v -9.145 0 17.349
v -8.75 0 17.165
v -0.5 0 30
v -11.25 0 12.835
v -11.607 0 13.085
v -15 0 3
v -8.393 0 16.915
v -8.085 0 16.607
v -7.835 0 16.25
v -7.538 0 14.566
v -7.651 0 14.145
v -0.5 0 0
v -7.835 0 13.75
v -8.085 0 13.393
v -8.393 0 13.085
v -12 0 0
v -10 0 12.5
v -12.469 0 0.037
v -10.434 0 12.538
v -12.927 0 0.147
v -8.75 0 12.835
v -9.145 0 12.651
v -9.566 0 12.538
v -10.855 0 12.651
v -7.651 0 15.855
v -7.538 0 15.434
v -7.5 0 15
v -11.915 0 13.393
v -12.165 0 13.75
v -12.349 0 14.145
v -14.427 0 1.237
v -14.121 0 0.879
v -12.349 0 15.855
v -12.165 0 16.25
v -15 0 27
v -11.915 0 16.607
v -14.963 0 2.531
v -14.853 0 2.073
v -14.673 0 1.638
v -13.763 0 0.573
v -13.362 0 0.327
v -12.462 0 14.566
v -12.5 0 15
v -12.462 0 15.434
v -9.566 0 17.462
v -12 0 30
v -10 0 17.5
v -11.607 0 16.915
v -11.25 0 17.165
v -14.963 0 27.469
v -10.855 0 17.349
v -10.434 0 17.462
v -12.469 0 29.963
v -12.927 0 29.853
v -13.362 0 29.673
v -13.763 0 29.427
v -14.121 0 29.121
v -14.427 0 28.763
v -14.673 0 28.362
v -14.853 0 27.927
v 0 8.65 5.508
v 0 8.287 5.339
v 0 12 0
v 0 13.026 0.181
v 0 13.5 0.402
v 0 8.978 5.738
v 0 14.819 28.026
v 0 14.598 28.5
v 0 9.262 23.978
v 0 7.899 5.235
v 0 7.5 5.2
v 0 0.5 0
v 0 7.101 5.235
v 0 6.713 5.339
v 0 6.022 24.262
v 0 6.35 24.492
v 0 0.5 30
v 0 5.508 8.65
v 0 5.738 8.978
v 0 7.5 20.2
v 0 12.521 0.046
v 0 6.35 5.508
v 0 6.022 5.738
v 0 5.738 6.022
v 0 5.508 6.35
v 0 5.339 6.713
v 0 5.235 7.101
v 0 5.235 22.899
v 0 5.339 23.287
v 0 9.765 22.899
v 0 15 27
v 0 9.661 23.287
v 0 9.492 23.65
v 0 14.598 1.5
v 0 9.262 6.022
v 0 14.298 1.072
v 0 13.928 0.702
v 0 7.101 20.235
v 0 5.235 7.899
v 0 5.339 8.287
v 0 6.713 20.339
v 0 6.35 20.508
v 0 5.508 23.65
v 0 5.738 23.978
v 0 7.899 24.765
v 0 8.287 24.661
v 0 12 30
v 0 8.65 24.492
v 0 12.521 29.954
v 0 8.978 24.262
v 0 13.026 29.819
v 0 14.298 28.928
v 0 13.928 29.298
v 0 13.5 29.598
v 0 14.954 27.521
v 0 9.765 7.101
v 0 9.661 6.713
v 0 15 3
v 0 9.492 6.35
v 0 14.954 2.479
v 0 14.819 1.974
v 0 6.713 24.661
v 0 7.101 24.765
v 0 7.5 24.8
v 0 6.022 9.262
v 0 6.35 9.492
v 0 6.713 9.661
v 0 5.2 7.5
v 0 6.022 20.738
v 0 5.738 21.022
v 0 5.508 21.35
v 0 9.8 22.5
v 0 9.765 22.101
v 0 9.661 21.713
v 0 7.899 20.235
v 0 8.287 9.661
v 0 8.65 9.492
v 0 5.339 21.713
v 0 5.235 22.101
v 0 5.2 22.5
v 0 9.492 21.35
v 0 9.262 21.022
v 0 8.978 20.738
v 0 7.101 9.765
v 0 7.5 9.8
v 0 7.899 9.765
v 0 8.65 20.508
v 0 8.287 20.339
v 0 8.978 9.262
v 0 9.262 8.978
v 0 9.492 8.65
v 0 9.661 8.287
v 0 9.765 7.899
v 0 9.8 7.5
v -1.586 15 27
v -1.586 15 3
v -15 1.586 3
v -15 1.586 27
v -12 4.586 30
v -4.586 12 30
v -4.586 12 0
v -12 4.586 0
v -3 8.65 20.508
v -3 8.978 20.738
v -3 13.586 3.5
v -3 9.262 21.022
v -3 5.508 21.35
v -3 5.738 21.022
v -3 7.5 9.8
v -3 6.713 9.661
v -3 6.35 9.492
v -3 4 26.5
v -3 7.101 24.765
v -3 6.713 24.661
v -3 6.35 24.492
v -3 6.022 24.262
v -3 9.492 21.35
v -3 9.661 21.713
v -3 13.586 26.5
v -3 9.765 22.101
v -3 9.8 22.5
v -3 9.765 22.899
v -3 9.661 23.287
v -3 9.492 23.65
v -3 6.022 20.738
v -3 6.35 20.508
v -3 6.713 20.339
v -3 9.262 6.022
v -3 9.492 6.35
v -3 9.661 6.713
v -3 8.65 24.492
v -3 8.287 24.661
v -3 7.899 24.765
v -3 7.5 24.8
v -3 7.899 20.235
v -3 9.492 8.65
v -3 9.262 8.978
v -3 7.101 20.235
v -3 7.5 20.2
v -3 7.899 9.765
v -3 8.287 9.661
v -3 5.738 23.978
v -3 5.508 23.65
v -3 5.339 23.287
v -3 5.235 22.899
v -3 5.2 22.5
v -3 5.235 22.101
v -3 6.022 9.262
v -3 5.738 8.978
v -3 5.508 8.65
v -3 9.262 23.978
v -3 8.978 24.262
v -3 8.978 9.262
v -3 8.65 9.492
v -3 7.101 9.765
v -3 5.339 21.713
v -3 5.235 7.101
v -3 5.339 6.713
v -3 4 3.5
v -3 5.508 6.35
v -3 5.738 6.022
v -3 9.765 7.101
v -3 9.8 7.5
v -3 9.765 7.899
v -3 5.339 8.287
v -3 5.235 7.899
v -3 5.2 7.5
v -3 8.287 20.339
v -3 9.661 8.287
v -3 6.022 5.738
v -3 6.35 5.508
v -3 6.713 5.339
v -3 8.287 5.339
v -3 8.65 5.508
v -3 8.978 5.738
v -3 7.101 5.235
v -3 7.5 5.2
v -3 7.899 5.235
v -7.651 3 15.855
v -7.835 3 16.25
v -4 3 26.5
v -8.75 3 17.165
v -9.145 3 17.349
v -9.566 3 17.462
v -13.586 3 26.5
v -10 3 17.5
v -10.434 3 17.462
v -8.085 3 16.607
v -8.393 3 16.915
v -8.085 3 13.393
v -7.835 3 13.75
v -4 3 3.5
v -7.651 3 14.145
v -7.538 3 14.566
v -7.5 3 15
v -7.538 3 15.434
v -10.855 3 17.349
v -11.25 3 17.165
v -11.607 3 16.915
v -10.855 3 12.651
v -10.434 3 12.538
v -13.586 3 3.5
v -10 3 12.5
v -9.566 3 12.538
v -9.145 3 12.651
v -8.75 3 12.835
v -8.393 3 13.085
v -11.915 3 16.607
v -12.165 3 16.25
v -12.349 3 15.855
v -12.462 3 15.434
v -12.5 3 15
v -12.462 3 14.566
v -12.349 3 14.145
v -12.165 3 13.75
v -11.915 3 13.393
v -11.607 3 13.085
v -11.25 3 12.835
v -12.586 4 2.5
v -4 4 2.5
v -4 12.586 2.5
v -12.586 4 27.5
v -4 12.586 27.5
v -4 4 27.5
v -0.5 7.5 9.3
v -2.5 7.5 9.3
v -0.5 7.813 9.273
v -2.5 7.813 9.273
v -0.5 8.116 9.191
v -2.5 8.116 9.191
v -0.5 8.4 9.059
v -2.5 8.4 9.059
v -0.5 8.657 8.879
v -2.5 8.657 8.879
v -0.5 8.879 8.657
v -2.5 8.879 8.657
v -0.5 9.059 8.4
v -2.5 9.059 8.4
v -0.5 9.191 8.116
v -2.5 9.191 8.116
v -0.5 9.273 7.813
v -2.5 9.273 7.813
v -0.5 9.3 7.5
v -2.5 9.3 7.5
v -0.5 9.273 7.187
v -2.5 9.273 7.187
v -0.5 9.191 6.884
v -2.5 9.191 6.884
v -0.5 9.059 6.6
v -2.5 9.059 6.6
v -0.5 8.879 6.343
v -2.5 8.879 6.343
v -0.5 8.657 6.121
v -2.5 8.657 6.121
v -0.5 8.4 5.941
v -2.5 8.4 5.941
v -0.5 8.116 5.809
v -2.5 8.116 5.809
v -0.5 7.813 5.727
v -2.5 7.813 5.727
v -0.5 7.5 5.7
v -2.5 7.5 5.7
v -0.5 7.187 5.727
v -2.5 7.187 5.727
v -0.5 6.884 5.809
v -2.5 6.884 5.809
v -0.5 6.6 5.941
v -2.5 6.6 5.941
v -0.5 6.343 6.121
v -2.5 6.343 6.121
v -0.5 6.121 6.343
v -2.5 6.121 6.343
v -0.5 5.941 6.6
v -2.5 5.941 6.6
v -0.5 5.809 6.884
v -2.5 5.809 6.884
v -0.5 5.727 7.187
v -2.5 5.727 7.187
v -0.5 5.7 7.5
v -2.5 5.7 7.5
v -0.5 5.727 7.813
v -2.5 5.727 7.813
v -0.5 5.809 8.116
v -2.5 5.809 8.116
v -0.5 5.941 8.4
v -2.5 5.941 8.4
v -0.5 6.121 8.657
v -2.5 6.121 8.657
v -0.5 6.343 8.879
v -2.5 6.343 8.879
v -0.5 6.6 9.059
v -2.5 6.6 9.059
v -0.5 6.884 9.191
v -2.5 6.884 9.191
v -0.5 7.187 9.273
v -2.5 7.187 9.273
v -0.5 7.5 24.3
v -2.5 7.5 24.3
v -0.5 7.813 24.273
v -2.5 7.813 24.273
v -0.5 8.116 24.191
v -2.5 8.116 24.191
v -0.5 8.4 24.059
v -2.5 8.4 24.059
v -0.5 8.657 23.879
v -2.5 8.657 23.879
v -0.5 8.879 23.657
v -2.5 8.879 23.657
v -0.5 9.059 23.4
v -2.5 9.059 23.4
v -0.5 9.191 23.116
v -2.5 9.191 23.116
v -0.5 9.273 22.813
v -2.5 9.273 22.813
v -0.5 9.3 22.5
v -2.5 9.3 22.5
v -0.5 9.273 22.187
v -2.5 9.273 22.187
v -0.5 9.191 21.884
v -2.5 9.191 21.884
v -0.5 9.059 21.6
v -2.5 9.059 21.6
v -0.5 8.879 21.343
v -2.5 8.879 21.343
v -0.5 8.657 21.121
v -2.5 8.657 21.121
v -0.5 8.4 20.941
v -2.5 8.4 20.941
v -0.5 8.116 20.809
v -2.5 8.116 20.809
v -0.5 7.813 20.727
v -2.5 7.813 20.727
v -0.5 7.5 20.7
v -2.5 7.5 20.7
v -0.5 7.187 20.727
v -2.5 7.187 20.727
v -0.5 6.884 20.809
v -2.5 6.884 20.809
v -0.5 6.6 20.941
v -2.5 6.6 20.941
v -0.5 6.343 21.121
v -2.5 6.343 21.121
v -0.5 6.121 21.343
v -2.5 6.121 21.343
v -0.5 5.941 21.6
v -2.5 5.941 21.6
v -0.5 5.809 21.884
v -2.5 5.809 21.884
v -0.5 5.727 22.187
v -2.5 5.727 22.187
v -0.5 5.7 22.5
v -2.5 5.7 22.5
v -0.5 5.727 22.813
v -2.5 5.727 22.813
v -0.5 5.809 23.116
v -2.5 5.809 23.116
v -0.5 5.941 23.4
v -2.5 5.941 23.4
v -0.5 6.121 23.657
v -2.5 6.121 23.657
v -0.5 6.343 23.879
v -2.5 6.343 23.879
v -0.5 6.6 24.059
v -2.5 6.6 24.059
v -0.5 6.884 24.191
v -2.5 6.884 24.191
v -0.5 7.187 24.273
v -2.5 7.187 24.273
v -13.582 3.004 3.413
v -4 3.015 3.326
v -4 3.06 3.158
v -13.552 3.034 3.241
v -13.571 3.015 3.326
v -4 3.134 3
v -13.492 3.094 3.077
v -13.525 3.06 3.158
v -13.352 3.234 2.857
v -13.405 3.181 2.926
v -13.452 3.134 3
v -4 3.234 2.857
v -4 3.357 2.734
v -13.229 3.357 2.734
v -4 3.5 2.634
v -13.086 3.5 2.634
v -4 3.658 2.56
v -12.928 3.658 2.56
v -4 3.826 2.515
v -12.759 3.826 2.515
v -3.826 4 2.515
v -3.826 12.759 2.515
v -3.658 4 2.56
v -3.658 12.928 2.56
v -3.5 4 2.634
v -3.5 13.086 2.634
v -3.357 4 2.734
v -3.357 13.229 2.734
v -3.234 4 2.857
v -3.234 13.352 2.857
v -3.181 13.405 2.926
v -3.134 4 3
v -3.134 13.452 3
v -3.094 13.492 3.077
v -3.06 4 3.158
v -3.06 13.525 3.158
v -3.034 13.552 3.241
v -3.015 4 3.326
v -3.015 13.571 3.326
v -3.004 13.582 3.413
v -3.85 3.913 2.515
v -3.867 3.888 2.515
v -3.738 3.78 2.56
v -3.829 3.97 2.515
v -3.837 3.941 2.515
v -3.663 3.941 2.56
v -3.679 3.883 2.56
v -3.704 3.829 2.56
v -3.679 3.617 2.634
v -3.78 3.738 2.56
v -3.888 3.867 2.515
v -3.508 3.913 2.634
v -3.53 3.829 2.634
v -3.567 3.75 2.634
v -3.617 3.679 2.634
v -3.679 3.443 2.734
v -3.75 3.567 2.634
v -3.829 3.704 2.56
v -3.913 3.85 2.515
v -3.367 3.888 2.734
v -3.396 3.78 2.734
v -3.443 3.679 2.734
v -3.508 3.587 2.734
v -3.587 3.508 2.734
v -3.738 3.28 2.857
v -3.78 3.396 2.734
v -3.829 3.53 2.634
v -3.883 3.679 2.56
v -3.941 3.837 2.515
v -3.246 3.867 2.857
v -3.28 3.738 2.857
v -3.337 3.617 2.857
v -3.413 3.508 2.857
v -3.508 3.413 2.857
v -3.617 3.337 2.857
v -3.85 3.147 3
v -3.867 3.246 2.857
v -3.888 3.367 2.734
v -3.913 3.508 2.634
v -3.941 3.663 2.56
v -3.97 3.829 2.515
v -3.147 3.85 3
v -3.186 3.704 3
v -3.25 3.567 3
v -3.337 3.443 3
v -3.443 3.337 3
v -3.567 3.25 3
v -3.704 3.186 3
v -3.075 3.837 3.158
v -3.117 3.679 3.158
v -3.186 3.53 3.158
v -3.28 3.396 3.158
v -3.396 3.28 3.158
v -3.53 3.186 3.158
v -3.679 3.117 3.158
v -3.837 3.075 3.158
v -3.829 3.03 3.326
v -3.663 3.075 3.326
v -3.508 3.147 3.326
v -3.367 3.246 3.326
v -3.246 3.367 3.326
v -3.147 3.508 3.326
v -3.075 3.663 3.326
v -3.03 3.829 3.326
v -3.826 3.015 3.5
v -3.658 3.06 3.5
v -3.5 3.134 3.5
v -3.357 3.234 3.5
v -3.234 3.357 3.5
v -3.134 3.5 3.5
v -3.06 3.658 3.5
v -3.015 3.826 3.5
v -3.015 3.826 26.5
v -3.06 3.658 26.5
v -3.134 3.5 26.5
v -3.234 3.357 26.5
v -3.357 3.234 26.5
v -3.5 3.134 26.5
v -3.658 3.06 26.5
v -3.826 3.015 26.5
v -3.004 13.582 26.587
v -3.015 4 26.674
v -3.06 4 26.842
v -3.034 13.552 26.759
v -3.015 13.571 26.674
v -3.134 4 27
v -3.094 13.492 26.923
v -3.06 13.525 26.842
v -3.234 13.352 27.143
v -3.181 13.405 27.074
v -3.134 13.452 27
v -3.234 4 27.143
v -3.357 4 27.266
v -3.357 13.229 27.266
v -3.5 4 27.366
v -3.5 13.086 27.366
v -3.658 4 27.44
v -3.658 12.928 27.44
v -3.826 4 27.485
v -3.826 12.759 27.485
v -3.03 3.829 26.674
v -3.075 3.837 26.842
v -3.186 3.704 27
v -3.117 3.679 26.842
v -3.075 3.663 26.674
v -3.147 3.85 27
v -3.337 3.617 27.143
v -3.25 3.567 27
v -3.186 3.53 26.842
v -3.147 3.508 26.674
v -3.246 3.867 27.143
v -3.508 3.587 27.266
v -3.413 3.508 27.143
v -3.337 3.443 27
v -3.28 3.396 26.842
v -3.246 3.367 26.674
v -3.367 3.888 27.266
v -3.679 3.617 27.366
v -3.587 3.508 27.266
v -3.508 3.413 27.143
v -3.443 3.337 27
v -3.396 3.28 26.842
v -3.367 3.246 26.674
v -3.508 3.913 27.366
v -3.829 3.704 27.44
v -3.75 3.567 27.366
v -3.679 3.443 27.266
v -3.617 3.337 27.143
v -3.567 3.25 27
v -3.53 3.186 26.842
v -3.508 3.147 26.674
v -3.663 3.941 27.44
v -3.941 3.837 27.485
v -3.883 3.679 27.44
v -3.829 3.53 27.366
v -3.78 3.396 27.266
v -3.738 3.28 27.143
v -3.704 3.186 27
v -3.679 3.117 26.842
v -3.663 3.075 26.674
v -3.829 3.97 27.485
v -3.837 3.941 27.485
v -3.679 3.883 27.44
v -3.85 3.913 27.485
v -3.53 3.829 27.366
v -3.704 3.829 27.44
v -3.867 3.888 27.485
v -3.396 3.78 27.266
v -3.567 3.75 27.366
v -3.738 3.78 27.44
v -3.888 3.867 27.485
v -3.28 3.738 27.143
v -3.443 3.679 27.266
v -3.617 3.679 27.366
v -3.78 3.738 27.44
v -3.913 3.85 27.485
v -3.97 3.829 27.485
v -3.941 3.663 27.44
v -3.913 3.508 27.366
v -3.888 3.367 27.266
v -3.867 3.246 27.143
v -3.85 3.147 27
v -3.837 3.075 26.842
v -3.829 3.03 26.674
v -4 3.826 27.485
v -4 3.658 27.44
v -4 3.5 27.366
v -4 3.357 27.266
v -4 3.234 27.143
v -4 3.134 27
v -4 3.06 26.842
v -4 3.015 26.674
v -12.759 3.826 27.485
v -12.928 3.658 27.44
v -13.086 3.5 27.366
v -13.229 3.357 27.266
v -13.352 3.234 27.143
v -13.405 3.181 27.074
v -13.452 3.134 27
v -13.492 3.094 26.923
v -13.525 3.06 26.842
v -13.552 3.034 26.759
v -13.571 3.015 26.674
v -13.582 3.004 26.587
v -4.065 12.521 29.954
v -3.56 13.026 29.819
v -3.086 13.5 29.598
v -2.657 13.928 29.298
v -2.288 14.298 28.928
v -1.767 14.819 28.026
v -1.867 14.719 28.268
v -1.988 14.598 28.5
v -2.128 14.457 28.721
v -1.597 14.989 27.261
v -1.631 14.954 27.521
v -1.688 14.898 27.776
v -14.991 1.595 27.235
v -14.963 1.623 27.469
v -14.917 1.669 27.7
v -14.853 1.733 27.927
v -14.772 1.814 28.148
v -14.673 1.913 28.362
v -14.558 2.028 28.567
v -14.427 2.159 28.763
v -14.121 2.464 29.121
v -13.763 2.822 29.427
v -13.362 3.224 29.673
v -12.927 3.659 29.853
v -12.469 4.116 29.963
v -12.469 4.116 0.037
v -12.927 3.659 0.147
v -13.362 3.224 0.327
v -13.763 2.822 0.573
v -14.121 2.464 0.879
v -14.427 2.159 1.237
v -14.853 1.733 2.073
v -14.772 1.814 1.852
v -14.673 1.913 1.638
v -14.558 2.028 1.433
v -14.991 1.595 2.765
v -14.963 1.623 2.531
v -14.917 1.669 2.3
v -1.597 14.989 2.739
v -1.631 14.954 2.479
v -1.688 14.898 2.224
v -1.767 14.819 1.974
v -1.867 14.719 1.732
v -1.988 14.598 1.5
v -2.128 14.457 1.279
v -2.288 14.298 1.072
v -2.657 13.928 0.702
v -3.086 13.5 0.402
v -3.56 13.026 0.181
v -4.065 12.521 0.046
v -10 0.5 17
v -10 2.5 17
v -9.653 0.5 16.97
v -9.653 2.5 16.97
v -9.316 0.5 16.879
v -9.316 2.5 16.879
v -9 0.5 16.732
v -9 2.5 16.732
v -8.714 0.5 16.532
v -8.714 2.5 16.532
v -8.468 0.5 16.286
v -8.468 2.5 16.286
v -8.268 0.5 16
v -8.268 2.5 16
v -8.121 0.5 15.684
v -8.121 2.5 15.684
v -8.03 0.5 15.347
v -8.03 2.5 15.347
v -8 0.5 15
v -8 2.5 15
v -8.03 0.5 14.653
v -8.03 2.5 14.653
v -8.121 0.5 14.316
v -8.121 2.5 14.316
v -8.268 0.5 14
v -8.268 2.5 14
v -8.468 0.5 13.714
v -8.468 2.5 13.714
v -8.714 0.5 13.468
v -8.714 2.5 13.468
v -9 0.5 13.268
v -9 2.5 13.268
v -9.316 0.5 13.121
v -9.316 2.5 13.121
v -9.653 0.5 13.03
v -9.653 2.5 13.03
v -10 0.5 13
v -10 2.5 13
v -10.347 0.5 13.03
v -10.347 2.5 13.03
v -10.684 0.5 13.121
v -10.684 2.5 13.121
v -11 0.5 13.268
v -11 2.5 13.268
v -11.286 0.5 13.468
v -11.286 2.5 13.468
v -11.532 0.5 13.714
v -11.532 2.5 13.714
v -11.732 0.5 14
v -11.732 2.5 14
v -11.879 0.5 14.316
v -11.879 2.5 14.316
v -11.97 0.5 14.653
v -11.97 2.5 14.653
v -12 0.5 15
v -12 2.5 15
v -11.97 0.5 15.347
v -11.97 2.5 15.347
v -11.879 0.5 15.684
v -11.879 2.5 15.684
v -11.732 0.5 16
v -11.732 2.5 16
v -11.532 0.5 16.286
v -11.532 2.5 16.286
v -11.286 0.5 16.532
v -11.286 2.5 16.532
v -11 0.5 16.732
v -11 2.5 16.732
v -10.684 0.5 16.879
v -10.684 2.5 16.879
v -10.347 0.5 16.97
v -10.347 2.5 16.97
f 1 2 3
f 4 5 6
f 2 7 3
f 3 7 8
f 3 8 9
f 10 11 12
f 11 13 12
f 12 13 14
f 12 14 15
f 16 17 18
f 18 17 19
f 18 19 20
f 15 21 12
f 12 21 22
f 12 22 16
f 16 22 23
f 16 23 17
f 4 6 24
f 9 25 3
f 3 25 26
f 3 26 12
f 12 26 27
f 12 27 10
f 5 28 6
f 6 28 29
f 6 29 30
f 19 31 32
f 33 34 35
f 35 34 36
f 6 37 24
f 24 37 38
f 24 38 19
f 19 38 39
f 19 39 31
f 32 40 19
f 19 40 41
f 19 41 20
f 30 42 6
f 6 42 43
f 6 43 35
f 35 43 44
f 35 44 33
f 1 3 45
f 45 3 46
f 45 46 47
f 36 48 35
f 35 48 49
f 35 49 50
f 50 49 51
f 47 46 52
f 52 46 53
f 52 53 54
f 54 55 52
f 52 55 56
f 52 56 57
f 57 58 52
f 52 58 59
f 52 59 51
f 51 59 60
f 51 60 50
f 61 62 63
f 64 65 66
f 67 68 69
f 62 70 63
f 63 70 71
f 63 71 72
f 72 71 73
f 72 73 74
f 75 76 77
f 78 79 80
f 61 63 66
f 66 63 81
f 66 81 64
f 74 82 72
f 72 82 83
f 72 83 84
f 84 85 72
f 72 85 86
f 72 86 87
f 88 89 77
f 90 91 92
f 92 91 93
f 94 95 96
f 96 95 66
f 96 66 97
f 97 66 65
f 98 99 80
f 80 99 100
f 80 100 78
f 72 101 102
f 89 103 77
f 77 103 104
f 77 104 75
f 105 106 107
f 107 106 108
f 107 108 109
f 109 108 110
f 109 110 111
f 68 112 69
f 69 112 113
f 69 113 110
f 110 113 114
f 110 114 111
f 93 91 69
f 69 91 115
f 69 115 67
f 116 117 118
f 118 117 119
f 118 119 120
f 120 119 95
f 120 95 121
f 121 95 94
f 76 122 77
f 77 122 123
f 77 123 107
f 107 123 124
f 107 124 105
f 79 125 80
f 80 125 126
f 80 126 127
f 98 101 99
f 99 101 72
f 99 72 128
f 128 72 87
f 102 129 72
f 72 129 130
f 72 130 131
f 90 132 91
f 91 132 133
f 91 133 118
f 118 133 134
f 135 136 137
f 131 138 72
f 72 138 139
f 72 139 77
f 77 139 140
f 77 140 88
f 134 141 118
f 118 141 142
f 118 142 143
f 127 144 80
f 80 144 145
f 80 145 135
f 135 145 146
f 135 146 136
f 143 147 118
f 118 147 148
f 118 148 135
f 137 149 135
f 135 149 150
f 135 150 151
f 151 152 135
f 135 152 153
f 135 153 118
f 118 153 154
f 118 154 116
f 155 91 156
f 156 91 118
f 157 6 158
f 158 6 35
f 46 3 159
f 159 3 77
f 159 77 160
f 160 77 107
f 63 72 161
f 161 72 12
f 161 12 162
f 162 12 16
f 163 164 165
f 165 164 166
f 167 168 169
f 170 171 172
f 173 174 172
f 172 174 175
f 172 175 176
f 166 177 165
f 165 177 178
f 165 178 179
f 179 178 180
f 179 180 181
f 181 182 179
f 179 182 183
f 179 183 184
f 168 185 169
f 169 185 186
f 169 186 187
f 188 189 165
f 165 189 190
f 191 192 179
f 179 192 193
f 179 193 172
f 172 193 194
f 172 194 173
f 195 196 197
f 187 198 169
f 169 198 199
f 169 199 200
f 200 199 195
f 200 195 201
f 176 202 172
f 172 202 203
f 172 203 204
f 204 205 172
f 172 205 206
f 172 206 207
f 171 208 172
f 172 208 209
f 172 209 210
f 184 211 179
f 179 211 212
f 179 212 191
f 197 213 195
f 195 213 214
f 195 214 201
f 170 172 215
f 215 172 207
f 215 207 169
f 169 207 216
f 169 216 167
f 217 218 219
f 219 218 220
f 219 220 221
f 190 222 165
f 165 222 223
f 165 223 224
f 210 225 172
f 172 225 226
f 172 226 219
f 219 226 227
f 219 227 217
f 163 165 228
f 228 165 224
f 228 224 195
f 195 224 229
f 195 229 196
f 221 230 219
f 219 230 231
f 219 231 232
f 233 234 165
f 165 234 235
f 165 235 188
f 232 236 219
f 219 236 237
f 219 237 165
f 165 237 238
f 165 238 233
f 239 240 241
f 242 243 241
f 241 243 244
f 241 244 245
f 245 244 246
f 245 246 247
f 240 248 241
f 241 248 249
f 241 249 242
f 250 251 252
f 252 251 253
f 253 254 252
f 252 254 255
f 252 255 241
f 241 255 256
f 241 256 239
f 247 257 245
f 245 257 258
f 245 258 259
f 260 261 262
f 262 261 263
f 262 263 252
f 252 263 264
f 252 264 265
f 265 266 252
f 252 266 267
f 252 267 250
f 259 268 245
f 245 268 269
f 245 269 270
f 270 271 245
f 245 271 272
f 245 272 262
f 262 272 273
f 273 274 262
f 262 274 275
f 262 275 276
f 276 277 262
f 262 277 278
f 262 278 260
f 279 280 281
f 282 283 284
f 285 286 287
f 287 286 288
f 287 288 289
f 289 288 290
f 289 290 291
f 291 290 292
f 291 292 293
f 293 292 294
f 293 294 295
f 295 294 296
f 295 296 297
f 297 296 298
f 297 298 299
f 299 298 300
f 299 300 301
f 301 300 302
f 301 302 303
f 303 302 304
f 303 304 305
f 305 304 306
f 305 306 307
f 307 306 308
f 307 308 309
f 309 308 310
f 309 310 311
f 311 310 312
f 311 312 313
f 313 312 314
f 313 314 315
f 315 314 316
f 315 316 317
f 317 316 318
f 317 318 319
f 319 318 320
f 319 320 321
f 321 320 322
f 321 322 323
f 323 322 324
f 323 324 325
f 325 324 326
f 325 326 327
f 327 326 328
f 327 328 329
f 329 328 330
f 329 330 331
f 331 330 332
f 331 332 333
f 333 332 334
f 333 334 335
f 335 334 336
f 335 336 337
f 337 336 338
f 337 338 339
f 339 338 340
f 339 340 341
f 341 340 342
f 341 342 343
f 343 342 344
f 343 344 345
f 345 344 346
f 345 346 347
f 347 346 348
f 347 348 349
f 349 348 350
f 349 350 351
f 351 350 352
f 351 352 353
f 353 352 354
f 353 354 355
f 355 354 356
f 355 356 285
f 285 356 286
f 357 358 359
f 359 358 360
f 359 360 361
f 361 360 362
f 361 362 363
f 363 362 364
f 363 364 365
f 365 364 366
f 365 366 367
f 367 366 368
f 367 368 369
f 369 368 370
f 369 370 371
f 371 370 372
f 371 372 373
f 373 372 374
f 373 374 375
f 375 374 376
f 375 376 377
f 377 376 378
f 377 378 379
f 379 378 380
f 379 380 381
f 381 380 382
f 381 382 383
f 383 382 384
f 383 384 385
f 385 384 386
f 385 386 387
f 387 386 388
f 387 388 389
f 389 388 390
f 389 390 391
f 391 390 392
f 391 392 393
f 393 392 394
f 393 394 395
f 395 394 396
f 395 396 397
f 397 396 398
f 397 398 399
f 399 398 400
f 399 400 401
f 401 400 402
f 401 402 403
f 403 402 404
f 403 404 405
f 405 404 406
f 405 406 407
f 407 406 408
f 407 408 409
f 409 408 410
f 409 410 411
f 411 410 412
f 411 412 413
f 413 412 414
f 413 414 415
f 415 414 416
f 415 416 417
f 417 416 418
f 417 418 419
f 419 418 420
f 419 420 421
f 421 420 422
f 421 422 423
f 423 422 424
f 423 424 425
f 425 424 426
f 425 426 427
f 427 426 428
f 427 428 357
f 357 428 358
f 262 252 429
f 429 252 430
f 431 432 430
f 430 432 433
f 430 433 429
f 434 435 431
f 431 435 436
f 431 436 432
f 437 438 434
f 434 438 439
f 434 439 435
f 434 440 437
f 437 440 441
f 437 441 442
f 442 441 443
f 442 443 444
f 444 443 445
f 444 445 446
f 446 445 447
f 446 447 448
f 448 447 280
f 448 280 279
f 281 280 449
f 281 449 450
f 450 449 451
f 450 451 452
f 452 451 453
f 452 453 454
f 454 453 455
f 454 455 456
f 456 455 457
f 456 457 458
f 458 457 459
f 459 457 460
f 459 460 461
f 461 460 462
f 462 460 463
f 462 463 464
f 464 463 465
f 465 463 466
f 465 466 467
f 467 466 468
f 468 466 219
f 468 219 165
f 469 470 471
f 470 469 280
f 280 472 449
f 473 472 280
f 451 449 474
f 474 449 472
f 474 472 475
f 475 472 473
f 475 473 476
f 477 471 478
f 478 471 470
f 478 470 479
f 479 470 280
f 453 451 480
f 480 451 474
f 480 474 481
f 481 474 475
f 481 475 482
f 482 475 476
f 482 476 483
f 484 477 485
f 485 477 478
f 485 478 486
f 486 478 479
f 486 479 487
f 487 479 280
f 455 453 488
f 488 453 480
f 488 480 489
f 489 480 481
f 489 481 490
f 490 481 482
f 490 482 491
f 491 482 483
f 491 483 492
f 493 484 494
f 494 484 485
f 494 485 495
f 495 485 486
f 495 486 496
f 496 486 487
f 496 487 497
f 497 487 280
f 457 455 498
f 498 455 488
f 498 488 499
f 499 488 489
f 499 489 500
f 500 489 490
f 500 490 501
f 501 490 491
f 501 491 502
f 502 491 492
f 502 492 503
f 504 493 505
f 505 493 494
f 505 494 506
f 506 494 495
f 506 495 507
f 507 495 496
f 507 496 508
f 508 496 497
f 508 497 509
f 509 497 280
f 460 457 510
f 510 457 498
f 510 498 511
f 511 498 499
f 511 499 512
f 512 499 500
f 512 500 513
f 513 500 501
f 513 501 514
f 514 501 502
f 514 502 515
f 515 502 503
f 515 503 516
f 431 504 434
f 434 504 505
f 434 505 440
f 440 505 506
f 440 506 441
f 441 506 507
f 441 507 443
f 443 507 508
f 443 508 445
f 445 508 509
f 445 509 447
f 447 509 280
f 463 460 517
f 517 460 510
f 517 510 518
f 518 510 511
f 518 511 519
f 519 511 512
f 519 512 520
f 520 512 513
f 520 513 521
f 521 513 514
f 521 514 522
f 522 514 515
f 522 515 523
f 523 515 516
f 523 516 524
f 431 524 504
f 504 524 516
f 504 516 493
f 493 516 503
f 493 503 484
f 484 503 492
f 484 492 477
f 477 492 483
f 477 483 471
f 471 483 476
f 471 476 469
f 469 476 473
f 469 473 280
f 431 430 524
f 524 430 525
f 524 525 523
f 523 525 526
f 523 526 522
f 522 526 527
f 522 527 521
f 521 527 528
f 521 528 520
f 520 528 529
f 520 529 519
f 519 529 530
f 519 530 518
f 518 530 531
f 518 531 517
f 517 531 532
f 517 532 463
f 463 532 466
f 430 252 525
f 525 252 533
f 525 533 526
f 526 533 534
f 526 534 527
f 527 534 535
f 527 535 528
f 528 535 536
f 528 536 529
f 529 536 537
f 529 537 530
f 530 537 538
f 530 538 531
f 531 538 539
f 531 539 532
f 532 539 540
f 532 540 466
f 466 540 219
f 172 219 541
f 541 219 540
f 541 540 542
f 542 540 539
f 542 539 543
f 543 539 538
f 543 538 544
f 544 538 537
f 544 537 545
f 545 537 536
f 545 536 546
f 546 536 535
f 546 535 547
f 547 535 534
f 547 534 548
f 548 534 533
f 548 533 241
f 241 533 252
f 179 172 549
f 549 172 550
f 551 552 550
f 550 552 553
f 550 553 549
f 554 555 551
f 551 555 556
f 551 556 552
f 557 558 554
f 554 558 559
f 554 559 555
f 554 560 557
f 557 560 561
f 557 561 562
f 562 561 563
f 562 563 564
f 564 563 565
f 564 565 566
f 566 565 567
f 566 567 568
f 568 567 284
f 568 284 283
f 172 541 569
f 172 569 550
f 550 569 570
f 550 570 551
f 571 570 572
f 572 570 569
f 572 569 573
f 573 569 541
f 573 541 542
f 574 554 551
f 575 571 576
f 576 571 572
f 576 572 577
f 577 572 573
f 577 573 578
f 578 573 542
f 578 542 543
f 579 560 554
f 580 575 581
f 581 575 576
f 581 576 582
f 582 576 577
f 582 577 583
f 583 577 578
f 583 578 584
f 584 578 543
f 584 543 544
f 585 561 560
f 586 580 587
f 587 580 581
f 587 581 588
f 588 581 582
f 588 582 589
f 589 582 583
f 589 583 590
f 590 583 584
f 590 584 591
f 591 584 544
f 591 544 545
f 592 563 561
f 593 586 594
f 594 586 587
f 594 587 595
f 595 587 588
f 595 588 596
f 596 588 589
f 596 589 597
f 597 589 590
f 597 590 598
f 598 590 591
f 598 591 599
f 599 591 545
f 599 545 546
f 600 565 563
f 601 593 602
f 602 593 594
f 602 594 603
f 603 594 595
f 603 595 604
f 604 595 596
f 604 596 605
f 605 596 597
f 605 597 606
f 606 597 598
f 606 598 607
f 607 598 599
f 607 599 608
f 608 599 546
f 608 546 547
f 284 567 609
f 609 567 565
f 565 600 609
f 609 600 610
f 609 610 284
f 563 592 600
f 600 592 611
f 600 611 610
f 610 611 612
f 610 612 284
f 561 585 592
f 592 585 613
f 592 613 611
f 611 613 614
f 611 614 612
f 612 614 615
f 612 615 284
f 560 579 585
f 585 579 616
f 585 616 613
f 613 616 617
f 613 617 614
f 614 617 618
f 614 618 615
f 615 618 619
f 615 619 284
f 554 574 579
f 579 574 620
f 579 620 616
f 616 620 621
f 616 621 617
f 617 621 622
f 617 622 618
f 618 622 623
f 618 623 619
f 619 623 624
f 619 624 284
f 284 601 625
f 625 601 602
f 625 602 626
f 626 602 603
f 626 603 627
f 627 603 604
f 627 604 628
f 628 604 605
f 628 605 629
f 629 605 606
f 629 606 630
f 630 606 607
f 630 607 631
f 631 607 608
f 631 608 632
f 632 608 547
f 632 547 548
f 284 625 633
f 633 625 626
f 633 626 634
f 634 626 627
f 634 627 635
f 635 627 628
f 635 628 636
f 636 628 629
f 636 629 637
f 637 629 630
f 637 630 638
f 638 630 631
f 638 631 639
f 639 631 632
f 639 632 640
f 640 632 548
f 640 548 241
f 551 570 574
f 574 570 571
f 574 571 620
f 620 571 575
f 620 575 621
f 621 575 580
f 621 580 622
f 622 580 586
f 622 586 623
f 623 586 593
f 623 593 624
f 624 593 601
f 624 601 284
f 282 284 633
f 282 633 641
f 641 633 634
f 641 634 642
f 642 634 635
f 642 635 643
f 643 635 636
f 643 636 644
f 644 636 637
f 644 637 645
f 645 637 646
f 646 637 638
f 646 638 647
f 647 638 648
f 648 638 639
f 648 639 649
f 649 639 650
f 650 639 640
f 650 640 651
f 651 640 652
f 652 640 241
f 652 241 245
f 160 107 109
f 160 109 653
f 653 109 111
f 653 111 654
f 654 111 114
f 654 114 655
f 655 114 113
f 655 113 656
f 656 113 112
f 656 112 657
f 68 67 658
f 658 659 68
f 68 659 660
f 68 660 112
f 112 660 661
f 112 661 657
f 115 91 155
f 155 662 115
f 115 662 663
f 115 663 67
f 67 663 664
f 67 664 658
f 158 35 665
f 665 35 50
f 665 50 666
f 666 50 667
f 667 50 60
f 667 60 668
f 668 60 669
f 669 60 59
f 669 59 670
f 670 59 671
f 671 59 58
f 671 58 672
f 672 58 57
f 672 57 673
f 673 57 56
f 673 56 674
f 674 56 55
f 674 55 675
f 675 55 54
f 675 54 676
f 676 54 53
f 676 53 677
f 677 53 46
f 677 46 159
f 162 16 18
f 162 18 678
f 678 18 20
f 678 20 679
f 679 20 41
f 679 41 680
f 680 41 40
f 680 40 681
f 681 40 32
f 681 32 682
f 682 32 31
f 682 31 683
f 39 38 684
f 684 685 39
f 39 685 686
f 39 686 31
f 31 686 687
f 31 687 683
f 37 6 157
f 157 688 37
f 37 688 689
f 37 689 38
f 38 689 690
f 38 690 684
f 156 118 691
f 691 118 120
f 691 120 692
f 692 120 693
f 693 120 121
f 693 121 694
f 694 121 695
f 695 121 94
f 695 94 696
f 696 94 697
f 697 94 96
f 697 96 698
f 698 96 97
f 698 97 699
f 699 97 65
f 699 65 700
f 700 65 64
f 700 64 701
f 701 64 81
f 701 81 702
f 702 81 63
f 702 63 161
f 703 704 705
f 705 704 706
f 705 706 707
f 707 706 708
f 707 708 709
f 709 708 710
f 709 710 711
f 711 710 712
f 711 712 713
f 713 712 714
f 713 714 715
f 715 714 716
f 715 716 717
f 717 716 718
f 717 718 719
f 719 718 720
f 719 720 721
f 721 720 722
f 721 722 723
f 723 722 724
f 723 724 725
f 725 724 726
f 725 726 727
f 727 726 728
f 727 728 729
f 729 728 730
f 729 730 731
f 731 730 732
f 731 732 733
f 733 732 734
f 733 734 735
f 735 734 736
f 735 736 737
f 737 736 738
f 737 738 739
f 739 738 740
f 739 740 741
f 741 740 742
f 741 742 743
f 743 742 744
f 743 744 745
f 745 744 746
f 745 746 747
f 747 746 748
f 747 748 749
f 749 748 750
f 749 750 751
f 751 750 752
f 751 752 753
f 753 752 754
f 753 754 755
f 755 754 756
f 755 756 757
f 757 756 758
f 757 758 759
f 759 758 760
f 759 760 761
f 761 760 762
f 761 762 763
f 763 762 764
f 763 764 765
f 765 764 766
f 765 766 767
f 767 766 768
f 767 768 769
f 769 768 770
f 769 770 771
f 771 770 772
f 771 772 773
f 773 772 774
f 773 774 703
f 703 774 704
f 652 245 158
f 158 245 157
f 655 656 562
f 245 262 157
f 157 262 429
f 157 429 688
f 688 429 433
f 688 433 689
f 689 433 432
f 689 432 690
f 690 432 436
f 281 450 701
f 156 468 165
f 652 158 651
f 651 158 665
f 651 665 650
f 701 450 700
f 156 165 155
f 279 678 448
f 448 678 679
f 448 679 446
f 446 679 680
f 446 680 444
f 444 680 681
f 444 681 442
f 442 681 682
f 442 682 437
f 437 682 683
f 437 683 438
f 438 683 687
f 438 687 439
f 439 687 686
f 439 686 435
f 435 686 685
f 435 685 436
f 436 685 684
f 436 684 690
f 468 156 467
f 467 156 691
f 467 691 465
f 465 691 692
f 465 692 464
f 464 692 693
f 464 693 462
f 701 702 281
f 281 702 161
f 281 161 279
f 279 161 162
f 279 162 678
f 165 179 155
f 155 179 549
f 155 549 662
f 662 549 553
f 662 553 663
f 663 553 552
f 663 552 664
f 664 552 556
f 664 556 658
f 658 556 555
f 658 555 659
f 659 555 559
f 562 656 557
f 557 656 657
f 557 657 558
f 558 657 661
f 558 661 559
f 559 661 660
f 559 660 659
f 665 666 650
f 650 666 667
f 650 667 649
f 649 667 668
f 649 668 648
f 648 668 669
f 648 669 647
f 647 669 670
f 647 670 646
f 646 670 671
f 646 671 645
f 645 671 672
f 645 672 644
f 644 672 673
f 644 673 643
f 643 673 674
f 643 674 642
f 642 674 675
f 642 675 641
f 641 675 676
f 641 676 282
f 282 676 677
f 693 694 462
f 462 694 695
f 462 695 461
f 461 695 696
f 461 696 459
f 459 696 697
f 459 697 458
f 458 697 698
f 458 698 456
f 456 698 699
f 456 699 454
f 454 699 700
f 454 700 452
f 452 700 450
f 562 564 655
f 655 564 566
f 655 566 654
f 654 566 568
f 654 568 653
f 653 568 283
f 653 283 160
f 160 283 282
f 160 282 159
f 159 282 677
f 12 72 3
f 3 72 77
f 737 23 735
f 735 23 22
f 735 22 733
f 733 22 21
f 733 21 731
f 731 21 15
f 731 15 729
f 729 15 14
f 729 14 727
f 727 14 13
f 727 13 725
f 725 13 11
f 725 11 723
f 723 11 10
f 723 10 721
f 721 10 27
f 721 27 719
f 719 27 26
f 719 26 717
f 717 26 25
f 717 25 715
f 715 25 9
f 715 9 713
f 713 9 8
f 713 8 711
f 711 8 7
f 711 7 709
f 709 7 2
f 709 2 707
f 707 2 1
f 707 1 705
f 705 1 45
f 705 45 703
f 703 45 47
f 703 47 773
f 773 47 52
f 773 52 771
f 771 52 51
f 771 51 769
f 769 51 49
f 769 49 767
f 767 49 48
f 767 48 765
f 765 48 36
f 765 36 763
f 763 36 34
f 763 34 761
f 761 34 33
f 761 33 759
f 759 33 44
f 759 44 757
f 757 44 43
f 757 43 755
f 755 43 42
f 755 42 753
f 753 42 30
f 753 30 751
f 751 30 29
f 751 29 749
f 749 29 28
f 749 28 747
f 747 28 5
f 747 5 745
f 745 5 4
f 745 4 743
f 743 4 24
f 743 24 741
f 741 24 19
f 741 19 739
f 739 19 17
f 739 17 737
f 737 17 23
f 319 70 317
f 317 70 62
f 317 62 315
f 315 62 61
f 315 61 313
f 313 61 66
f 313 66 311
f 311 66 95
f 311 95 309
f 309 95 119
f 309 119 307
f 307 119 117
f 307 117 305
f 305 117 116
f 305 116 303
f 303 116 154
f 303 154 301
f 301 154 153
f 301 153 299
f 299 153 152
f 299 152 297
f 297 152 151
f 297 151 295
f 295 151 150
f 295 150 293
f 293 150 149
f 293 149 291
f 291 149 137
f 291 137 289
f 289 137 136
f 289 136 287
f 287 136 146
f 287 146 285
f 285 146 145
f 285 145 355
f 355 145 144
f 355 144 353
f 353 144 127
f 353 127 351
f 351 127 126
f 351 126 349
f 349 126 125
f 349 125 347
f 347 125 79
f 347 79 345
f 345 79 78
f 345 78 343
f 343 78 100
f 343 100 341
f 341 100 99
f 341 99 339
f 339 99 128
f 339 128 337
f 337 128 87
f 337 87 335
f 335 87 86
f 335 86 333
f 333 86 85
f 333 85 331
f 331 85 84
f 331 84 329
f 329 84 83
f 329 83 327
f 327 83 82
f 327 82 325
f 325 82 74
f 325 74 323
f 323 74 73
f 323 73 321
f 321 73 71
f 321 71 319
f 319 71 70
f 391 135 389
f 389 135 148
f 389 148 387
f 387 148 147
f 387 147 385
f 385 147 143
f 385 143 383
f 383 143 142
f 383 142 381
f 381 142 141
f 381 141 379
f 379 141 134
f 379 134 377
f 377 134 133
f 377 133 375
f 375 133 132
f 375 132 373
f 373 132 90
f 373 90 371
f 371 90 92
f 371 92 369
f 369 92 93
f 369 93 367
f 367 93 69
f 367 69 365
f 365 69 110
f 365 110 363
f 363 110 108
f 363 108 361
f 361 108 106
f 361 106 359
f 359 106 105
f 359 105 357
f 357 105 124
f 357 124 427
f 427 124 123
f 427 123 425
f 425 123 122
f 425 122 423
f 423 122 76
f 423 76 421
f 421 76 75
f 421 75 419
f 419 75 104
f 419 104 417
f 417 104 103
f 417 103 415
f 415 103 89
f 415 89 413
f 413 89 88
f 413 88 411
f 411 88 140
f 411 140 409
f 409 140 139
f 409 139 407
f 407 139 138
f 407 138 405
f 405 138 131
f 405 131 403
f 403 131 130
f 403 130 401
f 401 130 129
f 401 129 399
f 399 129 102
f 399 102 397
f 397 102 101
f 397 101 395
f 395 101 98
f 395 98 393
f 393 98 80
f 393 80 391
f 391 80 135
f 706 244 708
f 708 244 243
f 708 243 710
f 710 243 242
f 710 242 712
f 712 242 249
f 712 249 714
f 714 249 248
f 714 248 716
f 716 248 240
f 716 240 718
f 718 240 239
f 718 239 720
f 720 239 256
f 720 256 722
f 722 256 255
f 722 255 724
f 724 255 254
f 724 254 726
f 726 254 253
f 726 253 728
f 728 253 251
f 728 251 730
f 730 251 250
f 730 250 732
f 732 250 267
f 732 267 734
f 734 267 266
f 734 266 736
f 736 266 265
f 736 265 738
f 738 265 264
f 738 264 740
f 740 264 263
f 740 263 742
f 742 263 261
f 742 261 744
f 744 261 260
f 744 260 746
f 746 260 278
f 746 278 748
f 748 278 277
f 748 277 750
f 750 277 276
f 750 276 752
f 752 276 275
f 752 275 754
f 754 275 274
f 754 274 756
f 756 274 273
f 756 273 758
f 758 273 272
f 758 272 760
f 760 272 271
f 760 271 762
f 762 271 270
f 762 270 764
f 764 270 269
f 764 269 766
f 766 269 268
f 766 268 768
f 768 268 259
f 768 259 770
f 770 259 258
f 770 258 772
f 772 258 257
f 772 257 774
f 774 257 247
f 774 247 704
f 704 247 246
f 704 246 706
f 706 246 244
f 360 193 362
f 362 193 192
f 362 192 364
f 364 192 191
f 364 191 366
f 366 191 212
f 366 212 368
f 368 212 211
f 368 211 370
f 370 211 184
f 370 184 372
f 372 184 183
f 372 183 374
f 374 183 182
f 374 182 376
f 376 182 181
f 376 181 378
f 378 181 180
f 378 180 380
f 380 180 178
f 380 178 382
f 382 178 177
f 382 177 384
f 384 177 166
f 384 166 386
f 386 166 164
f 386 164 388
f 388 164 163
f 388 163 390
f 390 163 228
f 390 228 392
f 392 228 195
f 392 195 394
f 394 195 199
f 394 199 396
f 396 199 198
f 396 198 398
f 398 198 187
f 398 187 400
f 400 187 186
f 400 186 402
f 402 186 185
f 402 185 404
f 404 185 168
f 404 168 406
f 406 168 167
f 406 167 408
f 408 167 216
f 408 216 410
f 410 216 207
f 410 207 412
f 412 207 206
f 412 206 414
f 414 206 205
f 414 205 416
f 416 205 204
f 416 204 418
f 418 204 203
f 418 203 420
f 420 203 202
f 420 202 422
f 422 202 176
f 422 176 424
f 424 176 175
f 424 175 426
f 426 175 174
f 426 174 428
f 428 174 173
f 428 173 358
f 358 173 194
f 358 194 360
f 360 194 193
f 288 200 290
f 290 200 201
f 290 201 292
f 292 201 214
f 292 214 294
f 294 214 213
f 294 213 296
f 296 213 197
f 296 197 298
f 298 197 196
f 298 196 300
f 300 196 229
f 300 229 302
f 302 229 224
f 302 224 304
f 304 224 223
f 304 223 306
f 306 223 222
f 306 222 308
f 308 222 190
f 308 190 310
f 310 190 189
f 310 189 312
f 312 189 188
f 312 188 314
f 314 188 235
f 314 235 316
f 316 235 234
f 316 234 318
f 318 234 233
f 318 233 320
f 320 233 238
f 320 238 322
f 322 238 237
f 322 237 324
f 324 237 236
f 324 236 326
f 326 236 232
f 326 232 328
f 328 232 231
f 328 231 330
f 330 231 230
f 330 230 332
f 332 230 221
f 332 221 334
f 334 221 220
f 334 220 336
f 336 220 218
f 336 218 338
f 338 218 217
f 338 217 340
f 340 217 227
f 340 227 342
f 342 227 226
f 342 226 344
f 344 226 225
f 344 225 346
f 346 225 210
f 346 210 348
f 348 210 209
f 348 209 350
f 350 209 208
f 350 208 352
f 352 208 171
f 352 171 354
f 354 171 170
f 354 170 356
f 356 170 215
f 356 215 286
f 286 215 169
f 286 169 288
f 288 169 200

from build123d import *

# Parameters (mm, degrees)
BOSS_EXTRUDE1_DEPTH = 30
CUT_EXTRUDE1_START  = -2.5
CUT_EXTRUDE1_DEPTH  = 25
SKETCH4_R           = 1.8
CUT_EXTRUDE2_DEPTH  = 25
FILLET1_R           = 1
FILLET2_R           = 3
SKETCH5_R           = 2
CUT_EXTRUDE3_DEPTH  = 25
CUT_EXTRUDE4_DEPTH  = 37.742346142
CHAMFER1_SIZE       = 0.5


with BuildPart() as part:
    # Sketch1 → Boss-Extrude1 (new body)
    with BuildSketch(Plane.XY):
        Polygon((0, 0), (0, 15), (-3, 15), (-15, 3), (-15, 0), align=None)
    extrude(amount=BOSS_EXTRUDE1_DEPTH)

    # Sketch3 → Cut-Extrude1 (cut)
    with BuildSketch(Plane.XY.offset(30).offset(CUT_EXTRUDE1_START)):
        Polygon((-15, 3), (-3, 3), (-3, 15), align=None)
    extrude(amount=-CUT_EXTRUDE1_DEPTH, mode=Mode.SUBTRACT)

    # Sketch4 → Cut-Extrude2 (cut)
    with BuildSketch(Plane.ZY.offset(3)):
        with Locations((7.5, 7.5)):
            Circle(SKETCH4_R)
        with Locations((22.5, 7.5)):
            Circle(SKETCH4_R)
    extrude(amount=-CUT_EXTRUDE2_DEPTH, mode=Mode.SUBTRACT)

    # Fillet1
    fillet1_edges = [part.edges().sort_by_distance(p)[0] for p in [
        (-3, 9, 2.5),
        (-9, 3, 2.5),
        (-3, 3, 15),
        (-9, 3, 27.5),
        (-3, 9, 27.5),
    ]]
    fillet(fillet1_edges, radius=FILLET1_R)

    # Fillet2
    fillet2_edges = [part.edges().sort_by_distance(p)[0] for p in [
        (-1.5, 15, 30),
        (-15, 1.5, 30),
        (-15, 1.5, 0),
        (-1.5, 15, 0),
    ]]
    fillet(fillet2_edges, radius=FILLET2_R)

    # Sketch5 → Cut-Extrude3 (cut)
    with BuildSketch(Plane(origin=(0, 3, 0), x_dir=(1, 0, 0), z_dir=(0, 1, 0))):
        with Locations(Location((-10, -15, 0), (0, 0, 270))):
            Circle(SKETCH5_R)
    extrude(amount=-CUT_EXTRUDE3_DEPTH, mode=Mode.SUBTRACT)

    # Sketch6 → Cut-Extrude4 (cut, through all)
    with BuildSketch(Plane(origin=(0, 0, 0), x_dir=(-1, 0, 0), z_dir=(0, 0, -1))):
        Polygon((-1.604036942, 18.18982338), (17.835092671, -1.249306233), (19.956413015, 0.87201411), (-1.074092092, 21.902519217), align=None)
    extrude(amount=-CUT_EXTRUDE4_DEPTH, mode=Mode.SUBTRACT)

    # Chamfer1
    chamfer1_edges = [part.edges().sort_by_distance(p)[0] for p in [
        (0, 7.5, 5.7),
        (-3, 7.5, 5.7),
        (0, 7.5, 20.7),
        (-3, 7.5, 20.7),
        (-10, 0, 13),
        (-10, 3, 13),
        (0, 0, 15),
    ]]
    chamfer(chamfer1_edges, length=CHAMFER1_SIZE)


solid = part.part
